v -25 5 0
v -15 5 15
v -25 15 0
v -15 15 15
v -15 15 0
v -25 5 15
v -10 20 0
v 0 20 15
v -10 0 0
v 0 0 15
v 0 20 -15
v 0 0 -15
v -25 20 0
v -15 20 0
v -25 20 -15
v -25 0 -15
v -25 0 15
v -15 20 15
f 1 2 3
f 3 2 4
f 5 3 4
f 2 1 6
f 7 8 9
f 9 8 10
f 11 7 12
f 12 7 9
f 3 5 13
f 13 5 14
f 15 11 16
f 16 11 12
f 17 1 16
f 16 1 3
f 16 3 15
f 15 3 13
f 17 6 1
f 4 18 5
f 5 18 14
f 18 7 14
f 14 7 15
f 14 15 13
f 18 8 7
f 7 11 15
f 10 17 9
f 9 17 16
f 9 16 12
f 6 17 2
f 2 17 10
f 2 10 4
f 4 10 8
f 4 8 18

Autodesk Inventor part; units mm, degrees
ref_plane "YZ Plane" through (0, 0, 0) normal (1, 0, 0) x (0, 1, 0)
ref_plane "XZ Plane" through (0, 0, 0) normal (0, 1, 0) x (-1, 0, 0)
ref_plane "XY Plane" through (0, 0, 0) normal (0, 0, 1) x (1, 0, 0)
sketch "Sketch3" plane through (0, 0, 0) normal (0, 0, 1) x (1, 0, 0)
  line L0 (0, 0) -> (-10, 0)
  line L1 (-25, 0) -> (-25, 5)
  line L2 (-25, 5) -> (-15, 5)
  line L3 (-15, 5) -> (-15, 20)
  line L4 (-15, 20) -> (-10, 20)
  line L5 (0, 20) -> (0, 0)
  line L6 (0, 20) -> (-10, 20)
  line L7 (-10, 20) -> (-10, 0)
  line L8 (-10, 20) -> (0, 20)
  line L9 (-10, 0) -> (-25, 0)
  line L10 (-25, 5) -> (-25, 20)
  line L11 (-25, 20) -> (-15, 20)
  dimension "d12" = 25
  dimension "d13" = 5
  dimension "d14" = 10
  dimension "d15" = 15
  dimension "d16" = 15
  dimension "d19" = 10
extrude "Extrusion1" add sketch "Sketch3" along normal blind 15 contours L9 L1 L2 L3 L4 L7
extrude "Extrusion2" add sketch "Sketch3" against normal blind 15 contours L9 L1 L2 L3 L4 L7 | L3 L2 L10 L11
sketch "Sketch5" plane through (-25, 20, -15) normal (0, 1, 0) x (1, 0, 0)
  line L0 (15, 0) -> (15, -30) projected
  line L1 (15, 0) -> (15, -30)
  line L2 (15, -30) -> (25, -30)
  line L3 (25, -30) -> (15, -15)
  line L4 (15, 0) -> (25, 0)
  line L5 (25, 0) -> (15, -15)
  point P0 (25, -15)
  dimension "d24" = 10
  dimension "d25" = 10
extrude "Extrusion4" add sketch "Sketch5" against normal blind 20
sketch "Sketch6" plane through (-25, 5, 15) normal (0, 1, 0) x (1, 0, 0)
  line L0 (0, 15) -> (0, 0) projected
  line L1 (10, 15) -> (0, 15)
  line L2 (0, 15) -> (10, 0)
  line L3 (10, 15) -> (0, 15) projected
  line L4 (10, 0) -> (10, 15)
  point P0 (25, 15)
extrude "Extrusion5" add sketch "Sketch6" along normal blind 10
